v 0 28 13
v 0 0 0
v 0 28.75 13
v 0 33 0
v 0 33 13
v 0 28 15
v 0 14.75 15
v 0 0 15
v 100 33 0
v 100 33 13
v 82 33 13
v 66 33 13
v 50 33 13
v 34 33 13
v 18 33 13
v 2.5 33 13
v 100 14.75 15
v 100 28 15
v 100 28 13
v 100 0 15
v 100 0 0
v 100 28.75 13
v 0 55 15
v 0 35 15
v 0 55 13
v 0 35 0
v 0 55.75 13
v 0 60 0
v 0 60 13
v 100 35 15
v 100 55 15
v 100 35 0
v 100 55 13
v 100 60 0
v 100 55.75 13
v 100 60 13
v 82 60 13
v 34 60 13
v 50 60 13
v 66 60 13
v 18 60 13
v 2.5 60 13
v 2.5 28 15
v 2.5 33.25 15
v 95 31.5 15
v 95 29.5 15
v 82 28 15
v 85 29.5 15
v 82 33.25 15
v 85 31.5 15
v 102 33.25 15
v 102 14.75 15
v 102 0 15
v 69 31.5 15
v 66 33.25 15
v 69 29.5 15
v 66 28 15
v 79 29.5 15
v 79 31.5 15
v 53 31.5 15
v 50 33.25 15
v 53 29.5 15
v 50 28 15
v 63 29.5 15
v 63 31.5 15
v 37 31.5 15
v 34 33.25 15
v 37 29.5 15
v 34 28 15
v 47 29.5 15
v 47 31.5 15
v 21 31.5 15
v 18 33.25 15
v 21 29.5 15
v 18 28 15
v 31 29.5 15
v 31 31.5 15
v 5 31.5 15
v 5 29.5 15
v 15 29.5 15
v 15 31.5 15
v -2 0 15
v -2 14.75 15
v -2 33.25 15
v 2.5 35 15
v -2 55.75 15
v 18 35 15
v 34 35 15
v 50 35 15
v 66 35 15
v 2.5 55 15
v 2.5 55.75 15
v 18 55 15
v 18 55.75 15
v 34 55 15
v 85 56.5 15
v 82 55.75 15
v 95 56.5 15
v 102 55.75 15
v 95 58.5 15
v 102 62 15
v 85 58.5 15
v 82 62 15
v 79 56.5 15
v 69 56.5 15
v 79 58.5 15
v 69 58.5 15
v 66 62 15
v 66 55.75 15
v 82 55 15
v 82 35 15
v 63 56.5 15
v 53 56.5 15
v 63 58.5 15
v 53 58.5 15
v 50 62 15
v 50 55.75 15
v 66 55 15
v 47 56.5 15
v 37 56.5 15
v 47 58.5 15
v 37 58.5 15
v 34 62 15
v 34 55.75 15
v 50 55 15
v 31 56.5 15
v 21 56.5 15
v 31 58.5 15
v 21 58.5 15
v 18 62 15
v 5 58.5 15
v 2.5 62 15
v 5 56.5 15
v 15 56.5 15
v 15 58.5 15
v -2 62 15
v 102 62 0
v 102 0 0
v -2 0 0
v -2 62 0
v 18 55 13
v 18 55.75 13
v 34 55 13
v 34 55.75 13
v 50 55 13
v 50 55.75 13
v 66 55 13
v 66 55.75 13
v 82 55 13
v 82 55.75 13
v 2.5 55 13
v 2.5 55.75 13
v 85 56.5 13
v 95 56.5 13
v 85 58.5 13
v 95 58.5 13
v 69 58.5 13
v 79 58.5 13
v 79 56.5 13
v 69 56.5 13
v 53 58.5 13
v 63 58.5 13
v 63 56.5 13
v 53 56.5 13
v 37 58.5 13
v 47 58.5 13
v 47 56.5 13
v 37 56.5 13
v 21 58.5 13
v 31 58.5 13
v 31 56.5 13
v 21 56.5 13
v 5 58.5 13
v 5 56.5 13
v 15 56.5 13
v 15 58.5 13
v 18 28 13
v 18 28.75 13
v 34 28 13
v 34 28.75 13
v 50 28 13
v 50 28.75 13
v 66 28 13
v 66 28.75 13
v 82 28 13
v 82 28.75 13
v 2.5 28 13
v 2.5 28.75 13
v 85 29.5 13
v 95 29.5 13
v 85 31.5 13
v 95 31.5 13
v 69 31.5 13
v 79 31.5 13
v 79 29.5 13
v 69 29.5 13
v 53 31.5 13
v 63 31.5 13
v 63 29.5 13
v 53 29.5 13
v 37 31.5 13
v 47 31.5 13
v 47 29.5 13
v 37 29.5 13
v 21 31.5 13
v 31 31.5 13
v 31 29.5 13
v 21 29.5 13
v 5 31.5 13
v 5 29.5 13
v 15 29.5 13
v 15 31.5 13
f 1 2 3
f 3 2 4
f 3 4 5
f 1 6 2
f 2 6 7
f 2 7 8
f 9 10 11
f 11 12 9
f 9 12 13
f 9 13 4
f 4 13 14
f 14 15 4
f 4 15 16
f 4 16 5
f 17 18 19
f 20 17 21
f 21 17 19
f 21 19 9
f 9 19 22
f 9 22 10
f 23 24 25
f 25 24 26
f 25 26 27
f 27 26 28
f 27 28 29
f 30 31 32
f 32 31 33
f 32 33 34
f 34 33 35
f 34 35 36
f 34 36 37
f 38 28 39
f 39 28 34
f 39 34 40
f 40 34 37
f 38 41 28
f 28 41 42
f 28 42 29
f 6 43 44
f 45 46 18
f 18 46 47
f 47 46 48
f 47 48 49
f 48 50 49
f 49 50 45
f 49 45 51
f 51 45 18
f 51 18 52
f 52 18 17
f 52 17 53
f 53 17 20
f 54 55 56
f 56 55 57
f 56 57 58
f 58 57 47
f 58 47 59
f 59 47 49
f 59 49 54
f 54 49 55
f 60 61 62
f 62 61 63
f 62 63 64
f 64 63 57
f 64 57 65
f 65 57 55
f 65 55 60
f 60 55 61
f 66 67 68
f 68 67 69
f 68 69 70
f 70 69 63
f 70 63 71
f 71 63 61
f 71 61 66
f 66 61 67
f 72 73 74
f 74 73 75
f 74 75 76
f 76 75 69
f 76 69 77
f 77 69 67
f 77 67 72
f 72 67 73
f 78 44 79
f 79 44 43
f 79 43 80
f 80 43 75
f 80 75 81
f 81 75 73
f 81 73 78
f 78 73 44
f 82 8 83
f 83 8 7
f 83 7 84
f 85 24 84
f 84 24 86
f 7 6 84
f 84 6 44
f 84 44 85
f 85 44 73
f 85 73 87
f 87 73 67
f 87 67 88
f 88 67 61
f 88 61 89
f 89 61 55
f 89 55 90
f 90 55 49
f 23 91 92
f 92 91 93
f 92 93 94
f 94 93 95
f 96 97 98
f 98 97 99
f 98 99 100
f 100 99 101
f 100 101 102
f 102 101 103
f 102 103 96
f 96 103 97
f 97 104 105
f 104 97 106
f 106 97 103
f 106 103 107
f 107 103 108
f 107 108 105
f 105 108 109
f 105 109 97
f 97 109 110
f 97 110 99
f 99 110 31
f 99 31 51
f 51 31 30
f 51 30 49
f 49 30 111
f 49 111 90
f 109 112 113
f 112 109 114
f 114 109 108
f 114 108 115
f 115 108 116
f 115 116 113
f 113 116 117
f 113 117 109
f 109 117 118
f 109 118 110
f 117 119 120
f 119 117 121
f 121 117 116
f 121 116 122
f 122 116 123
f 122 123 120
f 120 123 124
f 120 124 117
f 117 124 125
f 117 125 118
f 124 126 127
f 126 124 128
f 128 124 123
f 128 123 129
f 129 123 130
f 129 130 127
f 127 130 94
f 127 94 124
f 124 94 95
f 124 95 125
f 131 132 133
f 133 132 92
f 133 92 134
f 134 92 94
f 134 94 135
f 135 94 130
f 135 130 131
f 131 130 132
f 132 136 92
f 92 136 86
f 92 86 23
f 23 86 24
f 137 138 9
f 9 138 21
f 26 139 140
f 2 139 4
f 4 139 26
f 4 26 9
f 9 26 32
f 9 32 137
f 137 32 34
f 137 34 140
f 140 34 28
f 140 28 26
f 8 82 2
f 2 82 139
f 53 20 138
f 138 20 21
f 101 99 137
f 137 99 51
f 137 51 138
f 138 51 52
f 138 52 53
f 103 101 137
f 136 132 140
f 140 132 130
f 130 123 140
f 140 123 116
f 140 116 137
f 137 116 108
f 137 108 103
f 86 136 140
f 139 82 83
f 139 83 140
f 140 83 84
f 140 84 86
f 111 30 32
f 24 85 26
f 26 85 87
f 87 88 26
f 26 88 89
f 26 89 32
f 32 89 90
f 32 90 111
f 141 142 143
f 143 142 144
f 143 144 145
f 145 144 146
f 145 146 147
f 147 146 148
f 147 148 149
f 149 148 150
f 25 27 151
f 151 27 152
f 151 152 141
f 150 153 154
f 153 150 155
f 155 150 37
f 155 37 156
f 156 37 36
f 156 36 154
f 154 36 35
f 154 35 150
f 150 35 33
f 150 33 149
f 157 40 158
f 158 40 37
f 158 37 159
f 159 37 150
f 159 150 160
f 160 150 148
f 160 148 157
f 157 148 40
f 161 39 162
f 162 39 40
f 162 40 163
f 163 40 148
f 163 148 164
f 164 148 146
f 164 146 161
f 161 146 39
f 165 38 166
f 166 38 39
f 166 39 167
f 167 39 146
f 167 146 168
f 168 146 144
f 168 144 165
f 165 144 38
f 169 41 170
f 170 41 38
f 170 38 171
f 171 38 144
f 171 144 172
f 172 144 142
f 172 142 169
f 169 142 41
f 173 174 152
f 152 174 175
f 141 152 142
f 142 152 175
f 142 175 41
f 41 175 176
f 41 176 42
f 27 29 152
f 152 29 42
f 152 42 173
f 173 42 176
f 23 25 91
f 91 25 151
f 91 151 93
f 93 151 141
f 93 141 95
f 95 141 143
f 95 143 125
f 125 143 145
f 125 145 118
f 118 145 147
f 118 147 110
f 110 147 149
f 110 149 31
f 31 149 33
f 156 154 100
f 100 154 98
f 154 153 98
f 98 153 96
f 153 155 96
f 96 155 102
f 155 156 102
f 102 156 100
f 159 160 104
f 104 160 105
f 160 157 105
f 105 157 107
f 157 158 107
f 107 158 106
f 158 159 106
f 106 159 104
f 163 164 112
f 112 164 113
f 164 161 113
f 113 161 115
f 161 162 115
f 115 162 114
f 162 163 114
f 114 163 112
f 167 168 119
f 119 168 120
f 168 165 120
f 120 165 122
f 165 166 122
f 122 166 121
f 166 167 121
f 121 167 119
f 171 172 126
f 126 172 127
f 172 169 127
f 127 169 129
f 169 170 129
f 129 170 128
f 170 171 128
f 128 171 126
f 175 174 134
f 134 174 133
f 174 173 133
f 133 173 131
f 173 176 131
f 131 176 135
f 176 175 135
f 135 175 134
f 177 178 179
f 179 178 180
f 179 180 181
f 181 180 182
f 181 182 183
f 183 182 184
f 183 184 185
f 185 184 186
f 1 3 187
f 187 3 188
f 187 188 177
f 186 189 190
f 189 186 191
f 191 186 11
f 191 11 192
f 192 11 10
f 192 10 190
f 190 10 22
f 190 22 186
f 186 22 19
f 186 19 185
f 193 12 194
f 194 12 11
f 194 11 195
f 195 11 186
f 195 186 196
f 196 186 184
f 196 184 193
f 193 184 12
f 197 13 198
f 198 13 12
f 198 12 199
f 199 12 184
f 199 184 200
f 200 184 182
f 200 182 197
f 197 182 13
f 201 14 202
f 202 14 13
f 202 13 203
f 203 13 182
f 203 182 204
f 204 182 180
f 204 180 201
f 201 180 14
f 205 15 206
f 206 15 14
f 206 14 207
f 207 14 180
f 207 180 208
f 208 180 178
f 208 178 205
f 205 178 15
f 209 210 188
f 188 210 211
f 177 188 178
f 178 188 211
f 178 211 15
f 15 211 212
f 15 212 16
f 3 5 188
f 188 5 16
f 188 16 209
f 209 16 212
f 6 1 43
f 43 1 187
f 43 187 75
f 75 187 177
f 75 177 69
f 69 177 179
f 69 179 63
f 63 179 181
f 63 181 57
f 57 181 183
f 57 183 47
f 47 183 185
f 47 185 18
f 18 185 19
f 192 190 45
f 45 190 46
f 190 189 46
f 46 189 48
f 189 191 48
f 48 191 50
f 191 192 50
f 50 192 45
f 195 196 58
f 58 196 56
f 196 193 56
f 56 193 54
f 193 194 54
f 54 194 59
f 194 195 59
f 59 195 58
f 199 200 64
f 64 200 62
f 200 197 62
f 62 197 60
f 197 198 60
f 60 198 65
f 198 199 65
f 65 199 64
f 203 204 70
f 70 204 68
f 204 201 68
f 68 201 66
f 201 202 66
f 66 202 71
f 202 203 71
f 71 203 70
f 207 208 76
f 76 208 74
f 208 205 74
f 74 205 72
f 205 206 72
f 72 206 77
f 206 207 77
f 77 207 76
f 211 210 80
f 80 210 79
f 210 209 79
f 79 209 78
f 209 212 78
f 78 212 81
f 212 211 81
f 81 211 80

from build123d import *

# Parameters (mm, degrees)
SKETCH1_W           = 100
SKETCH1_H           = 25
BOSS_EXTRUDE1_DEPTH = 15
SKETCH2_W           = 100
SKETCH2_H           = 5
SKETCH2_W_2         = 10
SKETCH2_H_2         = 2
BOSS_EXTRUDE2_DEPTH = 2


with BuildPart() as part:
    # Sketch1 → Boss-Extrude1 (new body)
    with BuildSketch(Plane.XY):
        Polygon((0, 0), (0, 33), (100, 33), (100, 0), (102, 0), (102, 62), (-2, 62), (-2, 0), align=None)
        with Locations((50, 47.5)):
            Rectangle(SKETCH1_W, SKETCH1_H, mode=Mode.SUBTRACT)
    extrude(amount=BOSS_EXTRUDE1_DEPTH)

    # Sketch2 → Boss-Extrude2 (add)
    # profile 1 of 2: a face of its own
    with BuildSketch(Plane(origin=(0, 0, 15), x_dir=(-1, 0, 0), z_dir=(0, 0, -1))):
        with Locations((-50, 57.5)):
            Rectangle(SKETCH2_W, SKETCH2_H)
        with Locations((-74, 57.5)):
            Rectangle(SKETCH2_W_2, SKETCH2_H_2, mode=Mode.SUBTRACT)
        with Locations((-90, 57.5)):
            Rectangle(SKETCH2_W_2, SKETCH2_H_2, mode=Mode.SUBTRACT)
        with Locations((-58, 57.5)):
            Rectangle(SKETCH2_W_2, SKETCH2_H_2, mode=Mode.SUBTRACT)
        with Locations((-42, 57.5)):
            Rectangle(SKETCH2_W_2, SKETCH2_H_2, mode=Mode.SUBTRACT)
        with Locations((-26, 57.5)):
            Rectangle(SKETCH2_W_2, SKETCH2_H_2, mode=Mode.SUBTRACT)
        with Locations((-10, 57.5)):
            Rectangle(SKETCH2_W_2, SKETCH2_H_2, mode=Mode.SUBTRACT)
    # profile 2 of 2: a face of its own
    with BuildSketch(Plane(origin=(0, 0, 15), x_dir=(-1, 0, 0), z_dir=(0, 0, -1))):
        with Locations((-50, 30.5)):
            Rectangle(SKETCH2_W, SKETCH2_H)
        with Locations((-74, 30.5)):
            Rectangle(SKETCH2_W_2, SKETCH2_H_2, mode=Mode.SUBTRACT)
        with Locations((-90, 30.5)):
            Rectangle(SKETCH2_W_2, SKETCH2_H_2, mode=Mode.SUBTRACT)
        with Locations((-58, 30.5)):
            Rectangle(SKETCH2_W_2, SKETCH2_H_2, mode=Mode.SUBTRACT)
        with Locations((-42, 30.5)):
            Rectangle(SKETCH2_W_2, SKETCH2_H_2, mode=Mode.SUBTRACT)
        with Locations((-26, 30.5)):
            Rectangle(SKETCH2_W_2, SKETCH2_H_2, mode=Mode.SUBTRACT)
        with Locations((-10, 30.5)):
            Rectangle(SKETCH2_W_2, SKETCH2_H_2, mode=Mode.SUBTRACT)
    extrude(amount=BOSS_EXTRUDE2_DEPTH)


solid = part.part
